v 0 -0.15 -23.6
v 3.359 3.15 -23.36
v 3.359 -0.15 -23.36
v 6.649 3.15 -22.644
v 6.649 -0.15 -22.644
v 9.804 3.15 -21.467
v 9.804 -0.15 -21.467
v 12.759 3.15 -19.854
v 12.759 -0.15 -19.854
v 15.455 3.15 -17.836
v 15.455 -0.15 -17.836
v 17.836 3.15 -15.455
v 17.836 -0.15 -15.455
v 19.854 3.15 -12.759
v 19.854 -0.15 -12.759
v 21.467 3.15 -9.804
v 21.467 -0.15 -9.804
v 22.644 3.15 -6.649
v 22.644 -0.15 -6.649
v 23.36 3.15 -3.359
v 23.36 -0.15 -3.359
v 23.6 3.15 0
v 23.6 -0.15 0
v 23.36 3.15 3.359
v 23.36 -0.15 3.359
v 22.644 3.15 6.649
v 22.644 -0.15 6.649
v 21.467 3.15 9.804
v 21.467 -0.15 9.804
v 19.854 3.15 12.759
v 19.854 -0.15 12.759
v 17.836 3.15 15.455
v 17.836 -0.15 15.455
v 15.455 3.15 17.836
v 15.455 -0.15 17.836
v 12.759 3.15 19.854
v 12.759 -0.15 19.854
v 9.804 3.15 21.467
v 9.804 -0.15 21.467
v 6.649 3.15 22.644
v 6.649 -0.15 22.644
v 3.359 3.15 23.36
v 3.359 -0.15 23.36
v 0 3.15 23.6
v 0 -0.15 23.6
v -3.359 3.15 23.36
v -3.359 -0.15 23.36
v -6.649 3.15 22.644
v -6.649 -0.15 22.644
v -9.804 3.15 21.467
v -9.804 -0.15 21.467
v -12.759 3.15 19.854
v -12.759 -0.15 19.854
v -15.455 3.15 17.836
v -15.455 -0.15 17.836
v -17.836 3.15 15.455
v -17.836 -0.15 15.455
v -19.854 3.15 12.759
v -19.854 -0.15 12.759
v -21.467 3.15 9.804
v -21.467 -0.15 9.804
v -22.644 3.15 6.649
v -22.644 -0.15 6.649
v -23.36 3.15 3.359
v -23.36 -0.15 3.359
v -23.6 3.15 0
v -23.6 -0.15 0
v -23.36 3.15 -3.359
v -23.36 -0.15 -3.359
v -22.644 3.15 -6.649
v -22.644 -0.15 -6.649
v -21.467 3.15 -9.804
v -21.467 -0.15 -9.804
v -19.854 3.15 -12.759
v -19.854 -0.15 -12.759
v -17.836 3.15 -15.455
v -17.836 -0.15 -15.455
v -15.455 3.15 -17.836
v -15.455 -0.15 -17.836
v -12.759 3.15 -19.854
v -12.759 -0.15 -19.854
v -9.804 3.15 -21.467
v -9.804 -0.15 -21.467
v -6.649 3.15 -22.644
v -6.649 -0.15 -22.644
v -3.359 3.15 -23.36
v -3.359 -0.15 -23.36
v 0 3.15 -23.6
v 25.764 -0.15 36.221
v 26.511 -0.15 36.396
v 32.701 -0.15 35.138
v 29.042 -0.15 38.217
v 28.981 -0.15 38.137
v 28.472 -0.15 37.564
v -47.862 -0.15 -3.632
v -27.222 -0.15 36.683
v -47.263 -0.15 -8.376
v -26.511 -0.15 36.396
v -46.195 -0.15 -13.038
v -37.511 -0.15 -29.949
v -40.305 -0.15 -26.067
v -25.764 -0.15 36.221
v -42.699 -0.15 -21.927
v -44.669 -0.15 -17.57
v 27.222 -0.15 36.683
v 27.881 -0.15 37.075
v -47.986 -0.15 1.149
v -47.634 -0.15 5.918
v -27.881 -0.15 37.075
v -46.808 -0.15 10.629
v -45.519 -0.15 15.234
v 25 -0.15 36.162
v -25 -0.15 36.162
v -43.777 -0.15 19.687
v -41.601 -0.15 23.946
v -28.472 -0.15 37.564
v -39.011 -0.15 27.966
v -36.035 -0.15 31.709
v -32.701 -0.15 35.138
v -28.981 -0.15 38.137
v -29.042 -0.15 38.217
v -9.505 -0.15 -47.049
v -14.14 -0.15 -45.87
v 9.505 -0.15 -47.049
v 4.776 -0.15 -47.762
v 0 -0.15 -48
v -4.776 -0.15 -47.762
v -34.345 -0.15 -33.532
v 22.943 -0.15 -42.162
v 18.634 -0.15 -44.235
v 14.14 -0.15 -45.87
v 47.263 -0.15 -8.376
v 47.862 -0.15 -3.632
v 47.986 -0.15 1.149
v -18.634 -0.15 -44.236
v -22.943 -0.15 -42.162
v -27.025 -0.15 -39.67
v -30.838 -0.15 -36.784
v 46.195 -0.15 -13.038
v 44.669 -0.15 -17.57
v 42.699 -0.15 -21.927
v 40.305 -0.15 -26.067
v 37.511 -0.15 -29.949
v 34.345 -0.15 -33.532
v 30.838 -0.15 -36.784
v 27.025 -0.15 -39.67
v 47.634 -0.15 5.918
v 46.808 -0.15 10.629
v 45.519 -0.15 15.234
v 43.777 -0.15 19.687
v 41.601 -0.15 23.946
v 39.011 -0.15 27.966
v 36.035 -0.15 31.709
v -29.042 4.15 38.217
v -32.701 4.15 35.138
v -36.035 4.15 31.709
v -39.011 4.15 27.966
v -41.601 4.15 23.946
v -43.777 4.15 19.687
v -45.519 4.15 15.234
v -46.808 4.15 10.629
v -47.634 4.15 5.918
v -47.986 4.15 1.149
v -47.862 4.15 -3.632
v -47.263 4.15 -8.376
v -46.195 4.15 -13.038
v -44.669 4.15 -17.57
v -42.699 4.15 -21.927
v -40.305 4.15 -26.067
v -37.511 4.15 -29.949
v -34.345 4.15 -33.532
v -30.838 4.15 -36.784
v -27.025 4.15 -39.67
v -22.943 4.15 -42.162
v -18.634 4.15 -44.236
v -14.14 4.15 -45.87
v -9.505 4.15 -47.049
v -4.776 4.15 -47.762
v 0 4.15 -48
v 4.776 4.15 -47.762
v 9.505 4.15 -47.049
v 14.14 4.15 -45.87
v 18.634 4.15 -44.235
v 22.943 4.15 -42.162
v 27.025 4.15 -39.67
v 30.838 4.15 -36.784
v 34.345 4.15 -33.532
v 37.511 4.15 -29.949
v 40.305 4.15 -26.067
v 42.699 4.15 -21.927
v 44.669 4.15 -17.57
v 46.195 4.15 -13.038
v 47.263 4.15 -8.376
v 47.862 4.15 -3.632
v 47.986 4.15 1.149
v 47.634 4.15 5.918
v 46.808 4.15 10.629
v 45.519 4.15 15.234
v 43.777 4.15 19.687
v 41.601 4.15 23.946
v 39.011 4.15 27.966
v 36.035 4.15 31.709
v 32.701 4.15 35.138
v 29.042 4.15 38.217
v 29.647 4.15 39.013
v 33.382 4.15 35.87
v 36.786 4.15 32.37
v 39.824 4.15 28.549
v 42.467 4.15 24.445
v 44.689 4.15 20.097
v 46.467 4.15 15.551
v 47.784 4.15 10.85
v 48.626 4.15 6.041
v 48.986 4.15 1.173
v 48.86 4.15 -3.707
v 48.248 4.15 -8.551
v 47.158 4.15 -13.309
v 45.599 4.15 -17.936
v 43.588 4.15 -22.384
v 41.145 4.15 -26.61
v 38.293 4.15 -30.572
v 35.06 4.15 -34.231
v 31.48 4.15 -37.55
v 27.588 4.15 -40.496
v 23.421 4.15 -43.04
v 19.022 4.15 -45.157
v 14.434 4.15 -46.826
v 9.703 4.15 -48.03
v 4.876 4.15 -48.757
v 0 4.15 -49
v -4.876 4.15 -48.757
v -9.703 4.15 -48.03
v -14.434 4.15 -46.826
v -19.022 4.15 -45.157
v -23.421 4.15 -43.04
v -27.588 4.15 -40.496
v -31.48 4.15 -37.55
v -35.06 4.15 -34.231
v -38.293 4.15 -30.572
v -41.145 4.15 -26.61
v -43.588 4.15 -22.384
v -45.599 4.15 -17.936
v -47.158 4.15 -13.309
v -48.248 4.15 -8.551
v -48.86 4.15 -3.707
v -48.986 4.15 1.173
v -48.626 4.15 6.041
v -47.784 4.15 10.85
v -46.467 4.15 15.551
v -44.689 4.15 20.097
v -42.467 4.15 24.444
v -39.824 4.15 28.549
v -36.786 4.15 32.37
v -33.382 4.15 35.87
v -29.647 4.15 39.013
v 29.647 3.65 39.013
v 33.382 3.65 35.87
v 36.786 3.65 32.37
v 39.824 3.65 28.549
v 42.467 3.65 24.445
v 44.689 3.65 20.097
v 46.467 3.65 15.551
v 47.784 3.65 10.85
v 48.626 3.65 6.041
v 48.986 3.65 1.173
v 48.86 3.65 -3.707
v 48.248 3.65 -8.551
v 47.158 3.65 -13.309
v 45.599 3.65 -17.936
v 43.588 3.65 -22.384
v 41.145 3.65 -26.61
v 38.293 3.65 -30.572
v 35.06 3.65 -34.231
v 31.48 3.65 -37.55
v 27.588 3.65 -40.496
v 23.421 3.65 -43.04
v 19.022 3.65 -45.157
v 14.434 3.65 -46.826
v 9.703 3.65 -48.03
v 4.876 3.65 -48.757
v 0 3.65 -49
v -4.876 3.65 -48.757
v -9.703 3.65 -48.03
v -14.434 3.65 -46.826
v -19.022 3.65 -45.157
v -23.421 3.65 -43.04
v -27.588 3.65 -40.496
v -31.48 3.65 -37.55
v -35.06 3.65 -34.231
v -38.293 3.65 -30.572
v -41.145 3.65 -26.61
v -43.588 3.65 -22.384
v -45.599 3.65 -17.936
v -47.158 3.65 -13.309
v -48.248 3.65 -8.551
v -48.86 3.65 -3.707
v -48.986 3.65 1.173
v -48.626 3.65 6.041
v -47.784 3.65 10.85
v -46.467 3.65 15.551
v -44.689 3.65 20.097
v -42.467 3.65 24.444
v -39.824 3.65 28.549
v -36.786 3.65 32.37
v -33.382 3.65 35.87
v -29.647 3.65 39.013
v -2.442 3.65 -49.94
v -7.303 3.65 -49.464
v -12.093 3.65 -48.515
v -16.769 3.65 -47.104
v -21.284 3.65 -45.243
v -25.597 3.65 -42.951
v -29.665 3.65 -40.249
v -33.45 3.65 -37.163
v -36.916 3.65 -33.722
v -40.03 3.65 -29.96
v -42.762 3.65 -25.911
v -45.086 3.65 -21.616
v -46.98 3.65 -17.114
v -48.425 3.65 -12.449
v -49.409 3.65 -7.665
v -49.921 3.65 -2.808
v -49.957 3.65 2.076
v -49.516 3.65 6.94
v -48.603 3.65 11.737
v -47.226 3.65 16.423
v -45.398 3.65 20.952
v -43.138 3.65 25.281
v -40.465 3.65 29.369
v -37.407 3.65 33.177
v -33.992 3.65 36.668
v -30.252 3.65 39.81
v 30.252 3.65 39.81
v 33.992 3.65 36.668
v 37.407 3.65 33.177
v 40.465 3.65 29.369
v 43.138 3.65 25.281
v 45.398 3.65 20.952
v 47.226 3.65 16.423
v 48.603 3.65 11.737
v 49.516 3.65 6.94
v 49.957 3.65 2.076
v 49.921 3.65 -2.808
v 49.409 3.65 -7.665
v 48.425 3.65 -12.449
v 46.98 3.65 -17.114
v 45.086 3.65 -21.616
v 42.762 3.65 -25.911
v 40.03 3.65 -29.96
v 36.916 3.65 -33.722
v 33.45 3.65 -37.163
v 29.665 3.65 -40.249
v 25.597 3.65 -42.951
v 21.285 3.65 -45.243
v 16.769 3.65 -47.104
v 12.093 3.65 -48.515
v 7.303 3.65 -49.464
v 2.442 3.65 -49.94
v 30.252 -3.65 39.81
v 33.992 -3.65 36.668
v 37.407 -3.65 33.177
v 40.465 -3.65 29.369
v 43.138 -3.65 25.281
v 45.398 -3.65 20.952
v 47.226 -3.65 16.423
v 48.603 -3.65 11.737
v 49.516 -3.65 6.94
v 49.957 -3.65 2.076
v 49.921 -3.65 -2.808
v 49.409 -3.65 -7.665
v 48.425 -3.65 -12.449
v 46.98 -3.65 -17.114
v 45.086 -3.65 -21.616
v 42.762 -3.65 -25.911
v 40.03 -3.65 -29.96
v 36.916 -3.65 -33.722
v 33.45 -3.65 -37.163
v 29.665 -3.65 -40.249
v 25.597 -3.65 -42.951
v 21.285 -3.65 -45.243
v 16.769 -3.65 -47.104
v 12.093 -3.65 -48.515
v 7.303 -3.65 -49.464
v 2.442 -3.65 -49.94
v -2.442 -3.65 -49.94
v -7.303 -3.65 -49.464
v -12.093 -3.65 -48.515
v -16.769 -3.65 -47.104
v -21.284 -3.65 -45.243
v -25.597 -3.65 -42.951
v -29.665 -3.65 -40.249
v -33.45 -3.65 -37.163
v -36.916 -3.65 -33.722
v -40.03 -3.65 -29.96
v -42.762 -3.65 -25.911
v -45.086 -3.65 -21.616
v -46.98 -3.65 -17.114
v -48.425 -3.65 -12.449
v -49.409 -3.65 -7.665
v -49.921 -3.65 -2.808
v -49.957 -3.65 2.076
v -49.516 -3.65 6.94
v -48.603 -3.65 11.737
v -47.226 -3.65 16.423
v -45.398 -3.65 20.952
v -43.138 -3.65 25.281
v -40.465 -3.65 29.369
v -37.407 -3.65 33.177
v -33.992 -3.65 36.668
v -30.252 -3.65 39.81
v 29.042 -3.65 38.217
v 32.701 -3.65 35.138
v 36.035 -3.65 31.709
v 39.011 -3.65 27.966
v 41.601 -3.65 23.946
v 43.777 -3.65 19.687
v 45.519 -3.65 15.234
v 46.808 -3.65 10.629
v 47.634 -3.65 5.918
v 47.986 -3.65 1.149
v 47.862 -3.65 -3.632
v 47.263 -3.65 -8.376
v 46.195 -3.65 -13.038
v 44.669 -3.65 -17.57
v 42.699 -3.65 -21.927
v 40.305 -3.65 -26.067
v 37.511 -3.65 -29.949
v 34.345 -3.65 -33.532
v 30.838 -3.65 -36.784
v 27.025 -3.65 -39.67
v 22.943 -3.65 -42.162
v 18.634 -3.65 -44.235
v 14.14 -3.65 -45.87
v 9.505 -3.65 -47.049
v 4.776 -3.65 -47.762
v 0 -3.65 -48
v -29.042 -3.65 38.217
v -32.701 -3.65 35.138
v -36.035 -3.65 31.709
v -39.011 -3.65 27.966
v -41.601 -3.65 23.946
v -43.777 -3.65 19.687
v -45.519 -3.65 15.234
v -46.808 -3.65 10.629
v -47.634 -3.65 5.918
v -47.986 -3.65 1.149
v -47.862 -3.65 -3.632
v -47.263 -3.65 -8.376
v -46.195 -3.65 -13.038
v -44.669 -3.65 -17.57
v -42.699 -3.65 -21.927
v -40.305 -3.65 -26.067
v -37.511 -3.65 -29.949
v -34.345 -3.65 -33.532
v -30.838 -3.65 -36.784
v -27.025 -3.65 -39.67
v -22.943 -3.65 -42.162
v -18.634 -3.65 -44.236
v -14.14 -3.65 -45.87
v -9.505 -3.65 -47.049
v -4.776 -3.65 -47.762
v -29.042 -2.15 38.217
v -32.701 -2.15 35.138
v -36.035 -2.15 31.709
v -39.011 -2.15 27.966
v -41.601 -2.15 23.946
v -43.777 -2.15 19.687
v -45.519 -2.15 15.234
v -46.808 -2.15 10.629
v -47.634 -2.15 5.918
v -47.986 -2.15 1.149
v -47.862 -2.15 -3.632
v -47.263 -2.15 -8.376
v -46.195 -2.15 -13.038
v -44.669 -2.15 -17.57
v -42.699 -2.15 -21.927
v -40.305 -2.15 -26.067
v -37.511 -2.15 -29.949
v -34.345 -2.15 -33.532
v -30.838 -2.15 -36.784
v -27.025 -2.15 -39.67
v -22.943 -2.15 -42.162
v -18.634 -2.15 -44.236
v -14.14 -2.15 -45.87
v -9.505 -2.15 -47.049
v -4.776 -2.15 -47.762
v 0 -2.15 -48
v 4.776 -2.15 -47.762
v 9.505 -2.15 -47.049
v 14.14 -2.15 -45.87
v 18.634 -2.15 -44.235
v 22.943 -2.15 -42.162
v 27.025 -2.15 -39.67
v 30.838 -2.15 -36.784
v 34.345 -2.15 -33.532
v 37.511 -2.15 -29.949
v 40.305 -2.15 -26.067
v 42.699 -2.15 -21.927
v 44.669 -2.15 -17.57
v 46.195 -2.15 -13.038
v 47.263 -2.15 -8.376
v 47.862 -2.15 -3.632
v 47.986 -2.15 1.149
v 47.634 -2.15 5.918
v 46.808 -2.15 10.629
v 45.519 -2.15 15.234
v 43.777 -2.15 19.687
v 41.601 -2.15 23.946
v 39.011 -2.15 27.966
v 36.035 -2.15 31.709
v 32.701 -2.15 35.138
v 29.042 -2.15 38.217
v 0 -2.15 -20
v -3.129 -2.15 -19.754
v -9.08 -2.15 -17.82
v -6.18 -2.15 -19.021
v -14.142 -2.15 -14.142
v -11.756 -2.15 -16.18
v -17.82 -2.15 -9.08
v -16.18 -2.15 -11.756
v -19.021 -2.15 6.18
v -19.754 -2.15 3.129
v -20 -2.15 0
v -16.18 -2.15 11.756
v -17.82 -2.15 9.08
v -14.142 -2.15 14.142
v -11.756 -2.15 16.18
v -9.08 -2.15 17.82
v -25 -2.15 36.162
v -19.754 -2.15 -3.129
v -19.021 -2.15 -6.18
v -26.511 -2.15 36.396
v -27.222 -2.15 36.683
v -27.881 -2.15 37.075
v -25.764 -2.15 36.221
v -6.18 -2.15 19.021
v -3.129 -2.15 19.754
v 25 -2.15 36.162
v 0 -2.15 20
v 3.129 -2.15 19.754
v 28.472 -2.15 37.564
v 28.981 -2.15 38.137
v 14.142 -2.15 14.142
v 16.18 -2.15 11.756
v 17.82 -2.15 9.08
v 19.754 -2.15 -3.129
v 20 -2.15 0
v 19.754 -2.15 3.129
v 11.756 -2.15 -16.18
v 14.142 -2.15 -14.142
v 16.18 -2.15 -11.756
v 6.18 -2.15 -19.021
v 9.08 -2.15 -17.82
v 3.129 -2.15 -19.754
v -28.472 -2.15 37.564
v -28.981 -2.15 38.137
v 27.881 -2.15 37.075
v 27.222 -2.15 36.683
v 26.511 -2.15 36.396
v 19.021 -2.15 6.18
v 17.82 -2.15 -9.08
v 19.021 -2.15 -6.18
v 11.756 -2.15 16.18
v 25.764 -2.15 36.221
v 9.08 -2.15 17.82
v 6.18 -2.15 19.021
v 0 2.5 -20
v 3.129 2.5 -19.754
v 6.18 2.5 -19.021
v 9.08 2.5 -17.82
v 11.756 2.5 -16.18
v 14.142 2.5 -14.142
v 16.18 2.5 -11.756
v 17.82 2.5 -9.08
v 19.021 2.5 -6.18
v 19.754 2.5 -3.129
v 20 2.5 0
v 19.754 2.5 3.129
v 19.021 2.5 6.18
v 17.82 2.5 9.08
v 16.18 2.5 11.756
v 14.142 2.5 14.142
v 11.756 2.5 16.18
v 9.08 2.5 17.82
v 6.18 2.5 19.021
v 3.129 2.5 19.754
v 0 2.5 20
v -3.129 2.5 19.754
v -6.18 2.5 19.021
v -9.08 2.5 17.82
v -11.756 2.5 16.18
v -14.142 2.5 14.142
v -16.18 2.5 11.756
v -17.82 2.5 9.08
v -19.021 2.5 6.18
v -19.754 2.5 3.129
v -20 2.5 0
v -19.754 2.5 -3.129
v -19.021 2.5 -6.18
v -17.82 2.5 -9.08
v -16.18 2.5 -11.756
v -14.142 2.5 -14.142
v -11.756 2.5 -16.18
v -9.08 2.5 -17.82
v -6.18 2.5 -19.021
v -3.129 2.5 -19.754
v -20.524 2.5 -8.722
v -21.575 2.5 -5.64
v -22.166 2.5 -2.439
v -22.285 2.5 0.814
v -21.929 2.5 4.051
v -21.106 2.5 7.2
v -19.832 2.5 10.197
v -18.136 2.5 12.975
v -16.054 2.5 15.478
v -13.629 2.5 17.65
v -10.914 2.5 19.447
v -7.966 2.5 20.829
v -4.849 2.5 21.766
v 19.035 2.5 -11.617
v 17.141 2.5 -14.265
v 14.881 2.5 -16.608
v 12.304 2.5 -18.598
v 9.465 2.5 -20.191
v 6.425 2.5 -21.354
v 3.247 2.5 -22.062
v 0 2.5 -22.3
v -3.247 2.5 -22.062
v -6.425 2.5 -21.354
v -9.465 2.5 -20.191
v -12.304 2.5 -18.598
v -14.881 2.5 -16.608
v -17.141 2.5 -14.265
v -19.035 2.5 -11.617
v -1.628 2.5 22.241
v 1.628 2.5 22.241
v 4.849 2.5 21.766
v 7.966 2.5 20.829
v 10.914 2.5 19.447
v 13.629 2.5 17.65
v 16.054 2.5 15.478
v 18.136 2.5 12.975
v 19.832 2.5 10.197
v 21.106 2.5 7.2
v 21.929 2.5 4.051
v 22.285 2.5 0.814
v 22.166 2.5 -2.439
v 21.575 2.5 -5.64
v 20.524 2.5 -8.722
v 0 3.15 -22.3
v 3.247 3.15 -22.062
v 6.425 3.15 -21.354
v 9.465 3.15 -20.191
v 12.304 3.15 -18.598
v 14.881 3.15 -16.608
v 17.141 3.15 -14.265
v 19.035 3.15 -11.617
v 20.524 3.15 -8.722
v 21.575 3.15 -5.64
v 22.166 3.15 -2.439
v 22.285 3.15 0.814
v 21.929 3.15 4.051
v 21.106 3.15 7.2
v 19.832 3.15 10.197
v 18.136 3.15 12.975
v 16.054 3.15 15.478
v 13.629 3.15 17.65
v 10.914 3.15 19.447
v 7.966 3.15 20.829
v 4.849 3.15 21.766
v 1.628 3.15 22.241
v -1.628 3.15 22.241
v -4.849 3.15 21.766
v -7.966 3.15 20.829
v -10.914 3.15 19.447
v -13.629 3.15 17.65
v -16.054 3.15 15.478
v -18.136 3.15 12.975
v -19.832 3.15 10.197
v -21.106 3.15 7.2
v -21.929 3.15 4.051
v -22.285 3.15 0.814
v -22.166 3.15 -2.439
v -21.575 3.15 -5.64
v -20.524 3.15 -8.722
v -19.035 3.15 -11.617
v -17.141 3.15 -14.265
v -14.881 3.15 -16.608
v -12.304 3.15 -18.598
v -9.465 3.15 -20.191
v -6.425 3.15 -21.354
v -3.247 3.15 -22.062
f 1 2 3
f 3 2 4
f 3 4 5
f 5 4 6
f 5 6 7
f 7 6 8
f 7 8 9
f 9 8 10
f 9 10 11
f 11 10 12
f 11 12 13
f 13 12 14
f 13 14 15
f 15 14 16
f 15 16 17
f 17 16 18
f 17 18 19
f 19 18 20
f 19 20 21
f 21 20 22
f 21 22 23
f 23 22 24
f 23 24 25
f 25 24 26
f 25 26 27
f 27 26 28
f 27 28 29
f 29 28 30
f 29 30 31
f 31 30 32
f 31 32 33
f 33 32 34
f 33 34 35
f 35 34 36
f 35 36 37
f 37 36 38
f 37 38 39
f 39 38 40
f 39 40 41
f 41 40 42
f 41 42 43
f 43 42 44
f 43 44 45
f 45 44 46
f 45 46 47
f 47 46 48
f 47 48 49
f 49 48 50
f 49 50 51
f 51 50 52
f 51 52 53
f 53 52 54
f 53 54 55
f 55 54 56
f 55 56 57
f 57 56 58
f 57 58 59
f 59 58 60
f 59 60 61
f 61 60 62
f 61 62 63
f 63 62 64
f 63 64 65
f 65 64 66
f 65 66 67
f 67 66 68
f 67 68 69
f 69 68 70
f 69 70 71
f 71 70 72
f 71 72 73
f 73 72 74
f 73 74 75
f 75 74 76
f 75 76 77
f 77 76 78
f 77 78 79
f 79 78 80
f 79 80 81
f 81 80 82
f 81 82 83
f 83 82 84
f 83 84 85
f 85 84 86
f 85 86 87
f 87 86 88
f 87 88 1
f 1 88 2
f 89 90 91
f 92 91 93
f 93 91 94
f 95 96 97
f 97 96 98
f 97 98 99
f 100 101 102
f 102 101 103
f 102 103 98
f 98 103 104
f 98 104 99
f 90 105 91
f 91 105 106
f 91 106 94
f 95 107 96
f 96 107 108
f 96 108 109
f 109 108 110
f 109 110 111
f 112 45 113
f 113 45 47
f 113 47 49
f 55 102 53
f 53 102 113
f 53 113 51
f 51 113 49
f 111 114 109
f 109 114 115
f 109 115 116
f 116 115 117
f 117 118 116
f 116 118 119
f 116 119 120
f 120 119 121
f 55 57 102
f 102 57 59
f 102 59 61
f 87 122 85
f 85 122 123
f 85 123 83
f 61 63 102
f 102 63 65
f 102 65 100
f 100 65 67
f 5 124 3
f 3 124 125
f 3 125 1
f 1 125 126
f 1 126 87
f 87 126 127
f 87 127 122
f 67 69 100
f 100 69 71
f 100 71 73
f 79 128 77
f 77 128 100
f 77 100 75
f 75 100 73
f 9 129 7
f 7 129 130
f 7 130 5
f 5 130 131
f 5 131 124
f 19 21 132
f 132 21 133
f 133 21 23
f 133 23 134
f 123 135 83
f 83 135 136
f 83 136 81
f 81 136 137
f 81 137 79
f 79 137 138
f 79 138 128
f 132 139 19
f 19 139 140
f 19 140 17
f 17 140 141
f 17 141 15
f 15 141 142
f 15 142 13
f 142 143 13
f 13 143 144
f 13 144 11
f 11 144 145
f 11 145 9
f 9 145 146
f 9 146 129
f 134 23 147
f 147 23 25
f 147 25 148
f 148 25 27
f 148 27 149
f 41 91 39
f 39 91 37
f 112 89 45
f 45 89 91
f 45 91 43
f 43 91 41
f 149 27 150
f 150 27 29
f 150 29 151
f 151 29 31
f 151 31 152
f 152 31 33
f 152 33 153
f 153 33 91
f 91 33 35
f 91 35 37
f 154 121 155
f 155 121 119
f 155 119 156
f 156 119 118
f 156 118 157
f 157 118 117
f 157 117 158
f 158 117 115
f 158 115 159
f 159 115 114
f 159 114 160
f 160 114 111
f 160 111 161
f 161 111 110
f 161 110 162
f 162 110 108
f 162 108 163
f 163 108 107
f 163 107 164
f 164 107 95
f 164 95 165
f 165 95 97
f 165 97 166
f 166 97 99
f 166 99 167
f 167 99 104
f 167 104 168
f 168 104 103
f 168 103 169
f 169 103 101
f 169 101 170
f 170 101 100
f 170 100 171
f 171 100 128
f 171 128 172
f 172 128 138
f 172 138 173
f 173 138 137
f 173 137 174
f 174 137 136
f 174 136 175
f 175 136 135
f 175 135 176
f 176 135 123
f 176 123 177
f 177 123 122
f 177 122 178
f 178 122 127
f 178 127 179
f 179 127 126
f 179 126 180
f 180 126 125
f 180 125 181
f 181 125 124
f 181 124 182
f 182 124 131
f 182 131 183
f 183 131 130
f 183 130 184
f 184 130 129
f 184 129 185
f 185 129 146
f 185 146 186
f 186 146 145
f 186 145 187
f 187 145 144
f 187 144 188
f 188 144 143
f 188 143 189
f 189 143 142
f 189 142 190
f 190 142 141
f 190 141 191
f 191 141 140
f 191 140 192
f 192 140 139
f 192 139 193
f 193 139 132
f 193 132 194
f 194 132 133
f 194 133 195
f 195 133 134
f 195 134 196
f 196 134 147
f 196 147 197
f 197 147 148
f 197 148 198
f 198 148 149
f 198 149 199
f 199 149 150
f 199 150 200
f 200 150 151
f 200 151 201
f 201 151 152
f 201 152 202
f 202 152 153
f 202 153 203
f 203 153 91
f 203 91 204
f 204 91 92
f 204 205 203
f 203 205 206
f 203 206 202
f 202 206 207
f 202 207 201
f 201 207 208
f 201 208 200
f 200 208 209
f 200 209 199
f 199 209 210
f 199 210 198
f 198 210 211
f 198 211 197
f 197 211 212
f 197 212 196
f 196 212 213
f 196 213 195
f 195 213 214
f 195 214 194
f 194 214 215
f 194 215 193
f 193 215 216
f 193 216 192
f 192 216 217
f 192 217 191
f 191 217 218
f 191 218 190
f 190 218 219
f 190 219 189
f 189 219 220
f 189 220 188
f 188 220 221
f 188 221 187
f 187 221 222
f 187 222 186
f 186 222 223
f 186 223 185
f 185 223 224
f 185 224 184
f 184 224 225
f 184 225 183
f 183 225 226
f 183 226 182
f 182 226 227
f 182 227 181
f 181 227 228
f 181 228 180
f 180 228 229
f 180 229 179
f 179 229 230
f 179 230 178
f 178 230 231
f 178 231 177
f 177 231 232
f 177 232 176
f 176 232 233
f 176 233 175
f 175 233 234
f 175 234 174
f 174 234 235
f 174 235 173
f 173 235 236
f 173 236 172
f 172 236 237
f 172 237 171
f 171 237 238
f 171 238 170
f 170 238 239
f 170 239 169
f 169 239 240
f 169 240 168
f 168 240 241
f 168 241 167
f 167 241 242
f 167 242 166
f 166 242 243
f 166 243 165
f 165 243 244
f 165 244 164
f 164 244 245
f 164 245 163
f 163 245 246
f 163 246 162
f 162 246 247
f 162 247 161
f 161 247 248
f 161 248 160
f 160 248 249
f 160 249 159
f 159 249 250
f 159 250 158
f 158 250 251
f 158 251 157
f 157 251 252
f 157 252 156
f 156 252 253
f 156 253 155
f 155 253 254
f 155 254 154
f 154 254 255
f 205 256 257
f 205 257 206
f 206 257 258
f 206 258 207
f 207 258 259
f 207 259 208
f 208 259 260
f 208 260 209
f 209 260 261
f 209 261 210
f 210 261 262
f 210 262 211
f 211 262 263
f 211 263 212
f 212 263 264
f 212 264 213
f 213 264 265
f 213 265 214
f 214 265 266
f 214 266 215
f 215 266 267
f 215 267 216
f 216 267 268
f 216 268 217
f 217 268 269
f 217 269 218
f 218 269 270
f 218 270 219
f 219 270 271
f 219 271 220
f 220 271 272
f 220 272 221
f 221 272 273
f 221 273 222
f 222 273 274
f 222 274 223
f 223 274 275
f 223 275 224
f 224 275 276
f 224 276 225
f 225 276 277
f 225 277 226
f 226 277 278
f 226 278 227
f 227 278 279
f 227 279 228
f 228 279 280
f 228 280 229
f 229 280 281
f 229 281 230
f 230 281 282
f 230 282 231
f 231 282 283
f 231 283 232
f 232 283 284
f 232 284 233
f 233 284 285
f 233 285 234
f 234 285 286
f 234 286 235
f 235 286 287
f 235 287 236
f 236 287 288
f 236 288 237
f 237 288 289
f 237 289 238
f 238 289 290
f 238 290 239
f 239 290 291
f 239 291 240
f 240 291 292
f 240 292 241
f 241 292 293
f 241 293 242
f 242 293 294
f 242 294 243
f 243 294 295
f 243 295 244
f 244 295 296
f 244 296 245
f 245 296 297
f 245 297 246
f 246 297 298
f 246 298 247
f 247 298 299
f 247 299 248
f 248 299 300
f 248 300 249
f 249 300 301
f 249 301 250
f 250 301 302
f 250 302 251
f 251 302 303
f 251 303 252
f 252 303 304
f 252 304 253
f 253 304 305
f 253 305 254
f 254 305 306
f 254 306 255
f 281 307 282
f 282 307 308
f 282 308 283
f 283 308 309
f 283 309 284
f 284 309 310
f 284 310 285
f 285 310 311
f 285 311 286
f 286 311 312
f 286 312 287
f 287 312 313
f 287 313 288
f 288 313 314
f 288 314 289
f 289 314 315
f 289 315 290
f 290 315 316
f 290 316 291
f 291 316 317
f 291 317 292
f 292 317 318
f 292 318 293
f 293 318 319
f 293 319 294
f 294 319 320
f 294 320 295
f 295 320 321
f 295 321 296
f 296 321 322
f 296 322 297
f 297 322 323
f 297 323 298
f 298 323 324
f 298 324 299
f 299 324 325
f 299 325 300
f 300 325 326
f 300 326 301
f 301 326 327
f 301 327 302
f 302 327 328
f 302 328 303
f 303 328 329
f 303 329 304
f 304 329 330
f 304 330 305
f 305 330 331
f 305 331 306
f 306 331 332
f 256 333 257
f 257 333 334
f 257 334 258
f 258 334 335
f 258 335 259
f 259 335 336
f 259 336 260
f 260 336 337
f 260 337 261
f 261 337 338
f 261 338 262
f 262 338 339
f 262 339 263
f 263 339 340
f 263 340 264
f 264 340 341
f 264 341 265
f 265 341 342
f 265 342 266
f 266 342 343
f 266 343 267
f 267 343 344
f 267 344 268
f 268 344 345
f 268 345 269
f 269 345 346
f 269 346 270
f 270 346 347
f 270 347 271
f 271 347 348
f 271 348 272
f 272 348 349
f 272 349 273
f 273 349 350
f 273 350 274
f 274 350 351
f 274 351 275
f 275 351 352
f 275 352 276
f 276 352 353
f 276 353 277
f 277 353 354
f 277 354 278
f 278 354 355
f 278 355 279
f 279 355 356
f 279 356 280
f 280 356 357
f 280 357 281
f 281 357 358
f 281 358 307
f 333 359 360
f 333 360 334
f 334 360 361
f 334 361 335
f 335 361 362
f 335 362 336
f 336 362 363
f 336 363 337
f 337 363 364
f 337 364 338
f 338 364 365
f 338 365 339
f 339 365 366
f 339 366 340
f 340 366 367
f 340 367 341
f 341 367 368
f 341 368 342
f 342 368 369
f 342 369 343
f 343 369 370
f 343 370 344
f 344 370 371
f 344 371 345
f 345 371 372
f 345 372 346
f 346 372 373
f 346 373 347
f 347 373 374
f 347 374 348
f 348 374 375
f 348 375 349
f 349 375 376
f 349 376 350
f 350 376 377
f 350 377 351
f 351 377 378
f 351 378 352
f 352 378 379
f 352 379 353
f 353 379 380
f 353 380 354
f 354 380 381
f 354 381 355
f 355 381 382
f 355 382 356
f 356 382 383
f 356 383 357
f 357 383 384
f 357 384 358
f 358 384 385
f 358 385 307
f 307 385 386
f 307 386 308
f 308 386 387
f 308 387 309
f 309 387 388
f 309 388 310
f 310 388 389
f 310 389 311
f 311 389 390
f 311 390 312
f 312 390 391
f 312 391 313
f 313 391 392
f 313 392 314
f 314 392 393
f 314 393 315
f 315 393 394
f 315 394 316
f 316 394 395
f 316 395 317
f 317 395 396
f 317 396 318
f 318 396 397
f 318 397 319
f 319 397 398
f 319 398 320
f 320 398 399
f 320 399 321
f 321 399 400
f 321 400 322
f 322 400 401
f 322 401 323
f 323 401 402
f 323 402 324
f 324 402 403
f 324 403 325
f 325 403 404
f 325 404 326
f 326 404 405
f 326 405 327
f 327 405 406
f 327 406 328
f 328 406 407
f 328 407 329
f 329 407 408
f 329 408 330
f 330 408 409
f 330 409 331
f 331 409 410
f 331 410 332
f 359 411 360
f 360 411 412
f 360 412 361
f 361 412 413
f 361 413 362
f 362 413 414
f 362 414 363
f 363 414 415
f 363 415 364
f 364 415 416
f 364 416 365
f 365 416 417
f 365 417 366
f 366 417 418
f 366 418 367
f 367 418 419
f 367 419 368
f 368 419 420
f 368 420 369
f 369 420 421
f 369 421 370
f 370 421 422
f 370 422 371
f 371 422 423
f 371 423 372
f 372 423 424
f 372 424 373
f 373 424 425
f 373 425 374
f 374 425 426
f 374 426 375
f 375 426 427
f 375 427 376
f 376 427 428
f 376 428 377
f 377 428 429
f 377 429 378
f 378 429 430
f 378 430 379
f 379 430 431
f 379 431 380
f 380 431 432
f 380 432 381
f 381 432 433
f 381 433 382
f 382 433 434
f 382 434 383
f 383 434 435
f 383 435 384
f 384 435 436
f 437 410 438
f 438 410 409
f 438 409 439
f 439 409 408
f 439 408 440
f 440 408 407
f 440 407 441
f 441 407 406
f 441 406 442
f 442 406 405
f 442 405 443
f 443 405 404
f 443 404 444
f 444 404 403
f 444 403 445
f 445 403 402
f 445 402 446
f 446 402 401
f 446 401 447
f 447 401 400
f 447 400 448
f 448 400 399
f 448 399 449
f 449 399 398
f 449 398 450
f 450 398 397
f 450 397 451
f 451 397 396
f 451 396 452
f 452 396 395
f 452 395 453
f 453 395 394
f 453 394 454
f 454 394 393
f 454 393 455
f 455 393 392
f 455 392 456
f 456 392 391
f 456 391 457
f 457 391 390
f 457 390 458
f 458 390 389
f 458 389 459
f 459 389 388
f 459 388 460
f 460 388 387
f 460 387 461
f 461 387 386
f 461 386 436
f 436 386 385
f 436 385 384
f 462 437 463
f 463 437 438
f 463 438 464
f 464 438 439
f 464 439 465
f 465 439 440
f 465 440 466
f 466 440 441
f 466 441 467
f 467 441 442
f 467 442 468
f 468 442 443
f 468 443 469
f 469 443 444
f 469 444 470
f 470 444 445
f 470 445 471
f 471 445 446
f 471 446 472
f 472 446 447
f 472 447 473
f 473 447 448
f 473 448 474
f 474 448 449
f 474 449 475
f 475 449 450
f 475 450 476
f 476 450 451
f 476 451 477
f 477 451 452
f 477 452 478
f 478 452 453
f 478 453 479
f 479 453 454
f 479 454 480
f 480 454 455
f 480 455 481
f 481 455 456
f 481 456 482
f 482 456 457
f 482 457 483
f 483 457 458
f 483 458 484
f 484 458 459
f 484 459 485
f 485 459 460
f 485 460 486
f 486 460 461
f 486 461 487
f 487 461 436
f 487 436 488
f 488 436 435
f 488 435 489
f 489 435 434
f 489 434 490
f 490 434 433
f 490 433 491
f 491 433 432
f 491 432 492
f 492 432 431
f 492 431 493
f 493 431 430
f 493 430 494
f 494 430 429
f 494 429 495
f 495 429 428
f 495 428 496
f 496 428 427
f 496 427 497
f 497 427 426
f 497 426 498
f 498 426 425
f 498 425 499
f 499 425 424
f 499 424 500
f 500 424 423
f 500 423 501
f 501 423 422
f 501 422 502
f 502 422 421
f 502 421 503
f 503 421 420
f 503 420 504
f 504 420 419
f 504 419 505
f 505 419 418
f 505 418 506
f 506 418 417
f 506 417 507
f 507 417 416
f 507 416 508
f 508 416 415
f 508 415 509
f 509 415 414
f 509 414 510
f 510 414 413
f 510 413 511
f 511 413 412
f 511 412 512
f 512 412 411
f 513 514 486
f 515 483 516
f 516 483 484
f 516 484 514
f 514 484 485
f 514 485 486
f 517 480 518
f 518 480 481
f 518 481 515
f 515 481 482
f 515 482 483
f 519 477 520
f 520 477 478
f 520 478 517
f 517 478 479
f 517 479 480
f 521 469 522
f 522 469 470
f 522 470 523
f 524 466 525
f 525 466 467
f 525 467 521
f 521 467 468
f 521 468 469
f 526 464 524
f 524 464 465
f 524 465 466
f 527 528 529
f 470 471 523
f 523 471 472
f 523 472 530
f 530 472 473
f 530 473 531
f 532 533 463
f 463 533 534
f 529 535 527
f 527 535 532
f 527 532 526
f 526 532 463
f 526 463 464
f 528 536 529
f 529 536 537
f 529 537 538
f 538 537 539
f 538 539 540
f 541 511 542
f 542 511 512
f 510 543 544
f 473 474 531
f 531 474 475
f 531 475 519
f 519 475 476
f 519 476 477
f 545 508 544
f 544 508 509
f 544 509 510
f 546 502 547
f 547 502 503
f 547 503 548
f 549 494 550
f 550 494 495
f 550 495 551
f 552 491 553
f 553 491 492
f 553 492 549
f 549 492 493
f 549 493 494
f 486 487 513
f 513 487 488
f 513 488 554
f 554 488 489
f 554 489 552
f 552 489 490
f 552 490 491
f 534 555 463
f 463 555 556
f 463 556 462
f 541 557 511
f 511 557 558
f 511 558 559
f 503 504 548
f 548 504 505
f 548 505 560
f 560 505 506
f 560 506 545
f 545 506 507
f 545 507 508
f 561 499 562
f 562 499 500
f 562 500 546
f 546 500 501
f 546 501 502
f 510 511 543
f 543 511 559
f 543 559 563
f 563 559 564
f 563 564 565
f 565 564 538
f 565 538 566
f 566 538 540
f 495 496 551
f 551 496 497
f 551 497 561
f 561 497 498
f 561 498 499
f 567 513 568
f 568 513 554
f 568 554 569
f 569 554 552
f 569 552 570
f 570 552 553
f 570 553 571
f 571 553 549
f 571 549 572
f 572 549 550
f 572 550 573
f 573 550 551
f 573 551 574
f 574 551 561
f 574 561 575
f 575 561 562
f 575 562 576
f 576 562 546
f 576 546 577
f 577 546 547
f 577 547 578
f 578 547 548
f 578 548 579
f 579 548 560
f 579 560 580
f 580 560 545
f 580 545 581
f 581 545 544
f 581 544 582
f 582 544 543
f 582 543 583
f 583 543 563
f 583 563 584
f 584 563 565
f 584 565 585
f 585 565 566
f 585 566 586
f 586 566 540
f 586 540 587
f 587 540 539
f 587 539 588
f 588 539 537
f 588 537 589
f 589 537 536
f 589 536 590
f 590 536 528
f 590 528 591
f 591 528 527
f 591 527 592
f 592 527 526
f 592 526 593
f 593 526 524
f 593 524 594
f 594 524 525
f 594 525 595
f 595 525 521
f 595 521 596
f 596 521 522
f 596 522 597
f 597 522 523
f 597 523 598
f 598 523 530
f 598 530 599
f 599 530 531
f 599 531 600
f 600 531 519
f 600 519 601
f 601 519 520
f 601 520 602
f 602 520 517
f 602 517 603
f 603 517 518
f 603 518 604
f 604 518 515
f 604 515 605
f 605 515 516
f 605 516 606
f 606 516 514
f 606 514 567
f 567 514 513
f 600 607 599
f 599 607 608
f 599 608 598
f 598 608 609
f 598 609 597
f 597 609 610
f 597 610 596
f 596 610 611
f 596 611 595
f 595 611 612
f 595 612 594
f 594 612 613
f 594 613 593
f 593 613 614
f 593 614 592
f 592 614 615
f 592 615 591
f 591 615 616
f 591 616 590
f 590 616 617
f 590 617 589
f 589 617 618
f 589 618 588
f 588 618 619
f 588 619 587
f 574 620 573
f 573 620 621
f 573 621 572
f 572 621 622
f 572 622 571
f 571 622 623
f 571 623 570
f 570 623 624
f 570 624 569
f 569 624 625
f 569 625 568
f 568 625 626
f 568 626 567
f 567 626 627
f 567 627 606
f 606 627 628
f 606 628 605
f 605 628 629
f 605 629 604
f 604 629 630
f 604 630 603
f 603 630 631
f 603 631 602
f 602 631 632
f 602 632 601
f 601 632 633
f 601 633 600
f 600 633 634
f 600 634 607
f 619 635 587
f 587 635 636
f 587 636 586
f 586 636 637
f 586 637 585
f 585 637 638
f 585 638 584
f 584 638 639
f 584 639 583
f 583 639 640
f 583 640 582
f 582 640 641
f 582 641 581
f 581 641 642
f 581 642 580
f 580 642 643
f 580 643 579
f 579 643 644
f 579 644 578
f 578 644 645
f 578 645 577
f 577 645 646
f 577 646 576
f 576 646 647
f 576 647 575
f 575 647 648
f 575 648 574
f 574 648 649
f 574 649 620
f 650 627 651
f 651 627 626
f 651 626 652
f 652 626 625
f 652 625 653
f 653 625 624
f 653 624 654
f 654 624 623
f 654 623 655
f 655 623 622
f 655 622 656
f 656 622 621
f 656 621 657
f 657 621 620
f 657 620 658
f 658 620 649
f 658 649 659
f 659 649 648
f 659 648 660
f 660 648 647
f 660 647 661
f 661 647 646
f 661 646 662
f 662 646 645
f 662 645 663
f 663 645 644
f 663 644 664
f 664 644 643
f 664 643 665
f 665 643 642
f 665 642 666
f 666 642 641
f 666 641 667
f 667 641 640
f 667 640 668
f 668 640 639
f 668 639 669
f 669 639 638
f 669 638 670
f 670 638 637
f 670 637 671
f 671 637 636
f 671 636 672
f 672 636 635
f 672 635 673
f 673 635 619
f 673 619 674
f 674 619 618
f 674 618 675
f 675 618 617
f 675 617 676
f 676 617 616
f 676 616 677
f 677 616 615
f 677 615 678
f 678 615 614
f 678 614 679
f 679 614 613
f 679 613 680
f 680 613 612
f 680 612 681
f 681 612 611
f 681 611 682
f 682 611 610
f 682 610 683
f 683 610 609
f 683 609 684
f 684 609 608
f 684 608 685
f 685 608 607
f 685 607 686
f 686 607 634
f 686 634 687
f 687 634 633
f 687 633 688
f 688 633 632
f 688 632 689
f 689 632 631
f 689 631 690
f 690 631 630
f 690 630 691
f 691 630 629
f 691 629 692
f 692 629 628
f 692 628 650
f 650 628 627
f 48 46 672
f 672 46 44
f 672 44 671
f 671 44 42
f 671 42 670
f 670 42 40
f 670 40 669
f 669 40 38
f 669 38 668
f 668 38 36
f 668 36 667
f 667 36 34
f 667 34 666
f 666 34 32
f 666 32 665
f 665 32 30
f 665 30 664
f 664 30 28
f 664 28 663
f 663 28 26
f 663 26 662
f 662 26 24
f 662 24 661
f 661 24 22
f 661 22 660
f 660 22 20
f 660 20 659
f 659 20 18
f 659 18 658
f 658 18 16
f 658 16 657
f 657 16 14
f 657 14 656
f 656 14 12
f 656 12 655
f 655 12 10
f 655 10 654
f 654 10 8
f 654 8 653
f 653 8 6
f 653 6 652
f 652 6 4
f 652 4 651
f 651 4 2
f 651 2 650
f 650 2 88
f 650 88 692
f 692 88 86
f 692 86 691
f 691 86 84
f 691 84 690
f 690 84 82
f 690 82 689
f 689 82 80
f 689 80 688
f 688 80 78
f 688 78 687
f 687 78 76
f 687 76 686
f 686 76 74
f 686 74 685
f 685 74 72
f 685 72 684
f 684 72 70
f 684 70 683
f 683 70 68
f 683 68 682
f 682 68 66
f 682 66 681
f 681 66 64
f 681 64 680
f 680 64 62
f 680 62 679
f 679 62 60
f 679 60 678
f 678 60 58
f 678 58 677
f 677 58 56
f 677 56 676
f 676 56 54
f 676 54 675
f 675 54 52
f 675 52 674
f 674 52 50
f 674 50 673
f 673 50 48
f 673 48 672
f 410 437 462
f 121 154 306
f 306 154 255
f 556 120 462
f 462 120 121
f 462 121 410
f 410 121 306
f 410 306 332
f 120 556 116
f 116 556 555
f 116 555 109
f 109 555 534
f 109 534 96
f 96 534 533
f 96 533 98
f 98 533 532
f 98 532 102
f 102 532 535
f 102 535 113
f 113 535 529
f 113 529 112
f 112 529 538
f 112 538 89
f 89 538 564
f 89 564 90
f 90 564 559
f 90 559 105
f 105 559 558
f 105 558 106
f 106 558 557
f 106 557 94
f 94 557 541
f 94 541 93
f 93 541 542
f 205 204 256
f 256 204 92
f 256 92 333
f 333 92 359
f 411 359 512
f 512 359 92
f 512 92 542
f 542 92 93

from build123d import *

# Parameters (mm, degrees)
SKETCH2_W               = 1
SKETCH2_H               = 0.5
SKETCH2_W_2             = 1.3
SKETCH2_H_2             = 0.65
CUT_EXTRUDE2_DEPTH      = 5.15
CUT_EXTRUDE2_DEPTH_BACK = 4.65


with BuildPart() as part:
    # Sketch2 → Revolve1 (revolve)
    with BuildSketch(Plane(origin=(0, 0, 0), x_dir=(0, 0, -1), z_dir=(1, 0, 0))):
        Polygon((-49, 3.65), (-50, 3.65), (-50, -3.65), (-48, -3.65), (-48, -2.15), (-48, -0.15), (-48, 3.65), align=None)
        with Locations((-48.5, 3.9)):
            Rectangle(SKETCH2_W, SKETCH2_H)
        Polygon((-23.6, -0.15), (-48, -0.15), (-48, -2.15), (-20, -2.15), (-20, -0.15), align=None)
        Polygon((-23.6, 2.5), (-23.6, -0.15), (-20, -0.15), (-20, 2.5), (-22.3, 2.5), align=None)
        with Locations((-22.95, 2.825)):
            Rectangle(SKETCH2_W_2, SKETCH2_H_2)
    revolve(axis=Axis((0, 0, 0), (0, 1, 0)))

    # Sketch3 → Cut-Extrude2 (cut, two sides)
    with BuildSketch(Plane(origin=(0, 0, 0), x_dir=(1, 0, 0), z_dir=(0, 1, 0))) as cut_extrude2_sk:
        with BuildLine():
            Line((-182.0491461, -239.559631704), (-30.252223805, -39.809583706))
            Line((-30.252223805, -39.809583706), (-28.980936876, -38.136693234))
            ThreePointArc((-28.980936876, -38.136693234), (-27.221907589, -36.68275573), (-25, -36.1619439))
            Line((-25, -36.1619439), (25, -36.1619439))
            ThreePointArc((25, -36.1619439), (27.2219242, -36.682763969), (28.980959314, -38.13672276))
            Line((28.980959314, -38.13672276), (30.252211397, -39.809593135))
            Line((30.252211397, -39.809593135), (182.047652189, -239.56076697))
            Line((182.047652189, -239.56076697), (182.046087664, -741.32719587))
            Line((182.046087664, -741.32719587), (-182.050710625, -741.326060604))
            Line((-182.050710625, -741.326060604), (-182.0491461, -239.559631704))
        make_face()
    extrude(amount=CUT_EXTRUDE2_DEPTH, mode=Mode.SUBTRACT)
    extrude(cut_extrude2_sk.sketch, amount=-CUT_EXTRUDE2_DEPTH_BACK, mode=Mode.SUBTRACT)


solid = part.part
